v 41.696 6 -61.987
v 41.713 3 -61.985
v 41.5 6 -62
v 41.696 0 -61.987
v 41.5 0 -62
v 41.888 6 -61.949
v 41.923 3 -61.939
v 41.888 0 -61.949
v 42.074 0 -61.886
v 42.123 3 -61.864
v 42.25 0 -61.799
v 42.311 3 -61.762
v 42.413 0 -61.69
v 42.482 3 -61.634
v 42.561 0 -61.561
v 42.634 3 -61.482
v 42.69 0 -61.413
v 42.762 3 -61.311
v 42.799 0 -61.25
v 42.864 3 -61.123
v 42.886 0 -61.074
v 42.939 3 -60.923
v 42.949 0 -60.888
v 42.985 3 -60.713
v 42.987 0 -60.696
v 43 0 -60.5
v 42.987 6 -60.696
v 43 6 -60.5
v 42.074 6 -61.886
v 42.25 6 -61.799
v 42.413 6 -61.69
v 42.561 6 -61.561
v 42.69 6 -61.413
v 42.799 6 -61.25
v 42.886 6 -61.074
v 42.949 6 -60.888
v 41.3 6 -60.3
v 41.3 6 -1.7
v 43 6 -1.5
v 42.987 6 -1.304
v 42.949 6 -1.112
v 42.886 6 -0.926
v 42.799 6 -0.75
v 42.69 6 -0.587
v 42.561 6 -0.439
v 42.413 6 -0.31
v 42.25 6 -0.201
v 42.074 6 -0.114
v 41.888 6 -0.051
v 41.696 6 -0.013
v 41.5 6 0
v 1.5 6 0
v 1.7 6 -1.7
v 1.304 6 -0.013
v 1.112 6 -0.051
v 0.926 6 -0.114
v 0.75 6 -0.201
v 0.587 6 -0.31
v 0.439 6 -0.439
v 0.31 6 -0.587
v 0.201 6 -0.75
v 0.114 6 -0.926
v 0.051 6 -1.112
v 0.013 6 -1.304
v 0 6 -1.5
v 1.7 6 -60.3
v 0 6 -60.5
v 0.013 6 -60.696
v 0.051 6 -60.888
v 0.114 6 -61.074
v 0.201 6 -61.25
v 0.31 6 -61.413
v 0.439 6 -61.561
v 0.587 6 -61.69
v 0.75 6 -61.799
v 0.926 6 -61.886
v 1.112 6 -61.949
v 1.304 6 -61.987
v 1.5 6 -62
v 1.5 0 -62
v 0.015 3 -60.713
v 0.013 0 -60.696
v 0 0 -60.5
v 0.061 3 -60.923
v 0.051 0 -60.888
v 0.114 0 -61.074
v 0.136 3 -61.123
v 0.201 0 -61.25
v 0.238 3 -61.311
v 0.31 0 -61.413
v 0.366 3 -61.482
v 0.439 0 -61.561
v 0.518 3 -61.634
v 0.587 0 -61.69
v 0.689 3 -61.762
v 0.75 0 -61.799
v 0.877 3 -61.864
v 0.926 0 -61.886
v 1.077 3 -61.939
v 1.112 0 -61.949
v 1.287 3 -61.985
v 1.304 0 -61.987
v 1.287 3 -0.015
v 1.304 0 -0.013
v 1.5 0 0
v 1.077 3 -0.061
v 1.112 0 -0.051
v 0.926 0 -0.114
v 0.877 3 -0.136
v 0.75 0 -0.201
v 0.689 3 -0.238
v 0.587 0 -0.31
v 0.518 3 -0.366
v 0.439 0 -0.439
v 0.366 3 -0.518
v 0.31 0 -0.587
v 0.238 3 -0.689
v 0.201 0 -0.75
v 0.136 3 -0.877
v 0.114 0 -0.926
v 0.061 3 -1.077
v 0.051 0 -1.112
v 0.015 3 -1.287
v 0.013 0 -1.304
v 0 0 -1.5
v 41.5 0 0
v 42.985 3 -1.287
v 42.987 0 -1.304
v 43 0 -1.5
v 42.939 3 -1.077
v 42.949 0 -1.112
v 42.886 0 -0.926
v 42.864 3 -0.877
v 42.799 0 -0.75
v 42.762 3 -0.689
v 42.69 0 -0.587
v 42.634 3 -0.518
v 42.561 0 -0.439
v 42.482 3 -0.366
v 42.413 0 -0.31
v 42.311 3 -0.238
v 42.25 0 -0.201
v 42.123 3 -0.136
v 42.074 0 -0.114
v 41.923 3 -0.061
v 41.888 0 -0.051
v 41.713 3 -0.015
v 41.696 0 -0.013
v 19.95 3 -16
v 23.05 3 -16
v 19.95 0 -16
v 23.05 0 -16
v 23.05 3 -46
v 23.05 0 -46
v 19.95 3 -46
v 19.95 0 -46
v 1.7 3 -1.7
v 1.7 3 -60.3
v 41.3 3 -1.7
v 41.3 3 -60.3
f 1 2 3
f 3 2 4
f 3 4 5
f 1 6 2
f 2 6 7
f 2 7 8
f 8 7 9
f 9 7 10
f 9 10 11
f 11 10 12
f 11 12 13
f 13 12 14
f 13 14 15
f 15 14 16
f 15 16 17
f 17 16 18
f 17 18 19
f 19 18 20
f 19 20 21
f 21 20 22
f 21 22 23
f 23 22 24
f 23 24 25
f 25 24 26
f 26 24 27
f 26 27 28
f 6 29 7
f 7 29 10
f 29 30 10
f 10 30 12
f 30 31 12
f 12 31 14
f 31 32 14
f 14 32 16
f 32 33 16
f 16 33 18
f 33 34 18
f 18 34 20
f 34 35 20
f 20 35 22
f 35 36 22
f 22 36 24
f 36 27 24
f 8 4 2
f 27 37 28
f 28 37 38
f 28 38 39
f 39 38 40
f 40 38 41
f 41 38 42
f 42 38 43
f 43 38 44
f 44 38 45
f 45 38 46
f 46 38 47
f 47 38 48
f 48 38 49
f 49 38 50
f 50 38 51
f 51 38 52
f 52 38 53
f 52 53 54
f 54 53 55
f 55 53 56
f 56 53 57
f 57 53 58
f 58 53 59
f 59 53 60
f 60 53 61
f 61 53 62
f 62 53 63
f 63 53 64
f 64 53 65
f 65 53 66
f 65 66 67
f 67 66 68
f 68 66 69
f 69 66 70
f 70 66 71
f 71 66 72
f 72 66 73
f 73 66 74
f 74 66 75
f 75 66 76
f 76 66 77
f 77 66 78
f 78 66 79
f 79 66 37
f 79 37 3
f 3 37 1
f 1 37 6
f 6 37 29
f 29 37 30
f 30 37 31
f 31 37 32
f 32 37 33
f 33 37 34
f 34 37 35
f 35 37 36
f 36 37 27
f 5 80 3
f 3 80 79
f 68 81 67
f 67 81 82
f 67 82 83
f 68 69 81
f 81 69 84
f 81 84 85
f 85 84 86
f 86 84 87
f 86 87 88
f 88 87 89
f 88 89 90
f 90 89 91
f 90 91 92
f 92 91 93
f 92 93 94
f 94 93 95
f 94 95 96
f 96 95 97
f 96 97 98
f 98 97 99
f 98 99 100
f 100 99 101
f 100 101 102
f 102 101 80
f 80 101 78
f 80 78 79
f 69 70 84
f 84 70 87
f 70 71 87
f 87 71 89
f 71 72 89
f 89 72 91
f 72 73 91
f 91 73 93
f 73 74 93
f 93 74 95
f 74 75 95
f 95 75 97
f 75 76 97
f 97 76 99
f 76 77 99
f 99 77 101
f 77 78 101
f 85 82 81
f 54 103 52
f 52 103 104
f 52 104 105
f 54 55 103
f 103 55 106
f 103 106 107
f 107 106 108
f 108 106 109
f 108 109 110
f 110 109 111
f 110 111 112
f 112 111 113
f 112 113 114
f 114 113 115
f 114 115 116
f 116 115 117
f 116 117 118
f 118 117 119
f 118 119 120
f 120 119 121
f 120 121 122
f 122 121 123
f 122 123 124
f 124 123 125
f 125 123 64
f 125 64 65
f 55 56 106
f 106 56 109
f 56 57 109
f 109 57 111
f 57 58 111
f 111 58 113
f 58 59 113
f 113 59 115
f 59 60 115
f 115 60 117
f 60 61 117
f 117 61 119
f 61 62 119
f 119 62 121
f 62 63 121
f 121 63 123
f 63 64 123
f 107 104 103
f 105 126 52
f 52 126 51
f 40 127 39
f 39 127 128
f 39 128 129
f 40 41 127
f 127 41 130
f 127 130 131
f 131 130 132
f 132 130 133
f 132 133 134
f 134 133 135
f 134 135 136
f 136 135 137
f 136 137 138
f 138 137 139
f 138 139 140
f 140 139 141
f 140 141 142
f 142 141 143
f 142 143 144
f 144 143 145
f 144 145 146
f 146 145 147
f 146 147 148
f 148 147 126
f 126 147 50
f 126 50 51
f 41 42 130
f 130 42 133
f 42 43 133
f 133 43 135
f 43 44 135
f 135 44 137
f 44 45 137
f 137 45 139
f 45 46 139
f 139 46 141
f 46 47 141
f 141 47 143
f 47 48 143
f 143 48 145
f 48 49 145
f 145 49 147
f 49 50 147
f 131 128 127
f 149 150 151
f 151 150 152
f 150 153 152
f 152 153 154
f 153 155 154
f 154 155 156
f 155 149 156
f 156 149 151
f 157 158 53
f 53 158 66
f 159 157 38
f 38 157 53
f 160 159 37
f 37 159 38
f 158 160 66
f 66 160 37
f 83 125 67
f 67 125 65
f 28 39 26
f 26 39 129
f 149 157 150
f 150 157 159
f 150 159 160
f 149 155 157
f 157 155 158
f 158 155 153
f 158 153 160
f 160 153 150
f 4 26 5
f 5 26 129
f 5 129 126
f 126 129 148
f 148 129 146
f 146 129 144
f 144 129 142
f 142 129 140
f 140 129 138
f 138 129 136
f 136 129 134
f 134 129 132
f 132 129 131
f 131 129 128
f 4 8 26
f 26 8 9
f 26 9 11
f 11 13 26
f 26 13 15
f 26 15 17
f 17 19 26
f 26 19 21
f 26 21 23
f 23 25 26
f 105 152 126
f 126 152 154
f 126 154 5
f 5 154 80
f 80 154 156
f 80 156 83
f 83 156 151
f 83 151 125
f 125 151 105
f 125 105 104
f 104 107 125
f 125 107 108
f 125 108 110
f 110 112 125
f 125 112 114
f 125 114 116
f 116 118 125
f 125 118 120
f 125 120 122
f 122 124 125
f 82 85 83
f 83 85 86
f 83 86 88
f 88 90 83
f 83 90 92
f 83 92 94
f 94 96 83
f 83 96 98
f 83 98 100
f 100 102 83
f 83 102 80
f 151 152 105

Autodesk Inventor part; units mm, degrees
sketch "Sketch1" plane through (0, 0, 0) normal (0, 1, 0) x (-1, 0, 0)
  line L0 (0, 0) -> (-43, 0)
  line L1 (-43, 0) -> (-43, -62)
  line L2 (-43, -62) -> (0, -62)
  line L3 (0, -62) -> (0, 0)
  dimension "d0" = 43
  dimension "d1" = 62
extrude "Extrusion1" add sketch "Sketch1" along normal blind 3
sketch "Sketch2" plane through (0, 3, 0) normal (0, 1, 0) x (1, 0, 0)
  line L0 (43, 0) -> (43, 62) projected
  line L1 (0, 0) -> (43, 0)
  line L2 (43, 0) -> (43, 62)
  line L3 (43, 62) -> (0, 62)
  line L4 (0, 62) -> (0, 0)
  line L5 (1.7, 60.3) -> (41.3, 60.3)
  line L6 (41.3, 60.3) -> (41.3, 1.7)
  line L7 (41.3, 1.7) -> (1.7, 1.7)
  line L8 (1.7, 1.7) -> (1.7, 60.3)
  dimension "d4" = 1.7
extrude "Extrusion2" add sketch "Sketch2" along normal blind 3
sketch "Sketch3" plane through (0, 3, 0) normal (0, 1, 0) x (1, 0, 0)
  line L0 (23.05, 46) -> (19.95, 46)
  line L1 (19.95, 46) -> (19.95, 16)
  line L2 (19.95, 16) -> (23.05, 16)
  line L3 (23.05, 16) -> (23.05, 46)
  line L4 (41.3, 60.3) -> (41.3, 1.7) projected
  line L5 (41.3, 1.7) -> (1.7, 1.7) projected
  point P0 (0, 0)
  point P1 (41.3, 31)
  point P2 (23.05, 31)
  point P3 (21.5, 1.7)
  point P4 (21.5, 16)
  dimension "d7" = 3.1
  dimension "d8" = 0
  dimension "d9" = 30
  dimension "d15" = 0
extrude "Extrusion3" cut sketch "Sketch3" against normal blind 3
fillet "Fillet1" radius 1.5 4 edges at (43, 3, 0) (0, 3, 0) (0, 3, -62) (43, 3, -62)
equation "\"d0\" = width_inner + 2 * thickness"
equation "\"d1\" = length_inner + 2 * thickness"
equation "\"d2\" = thickness"
equation "\"d5\" = thickness"
equation "\"d7\" = acrylic_thickness"
equation "\"d9\" = acrylic_length"
equation "\"d11\" = thickness"
equation "\"d13\" = 0.5 * thickness"
equation "\"width_inner\" = 37"
equation "\"length_inner\" = 56"
equation "\"thickness\" = 3"
equation "\"acrylic_thickness\" = 3.1"
equation "\"acrylic_length\" = 30"
properties part number "ieee_lid"
